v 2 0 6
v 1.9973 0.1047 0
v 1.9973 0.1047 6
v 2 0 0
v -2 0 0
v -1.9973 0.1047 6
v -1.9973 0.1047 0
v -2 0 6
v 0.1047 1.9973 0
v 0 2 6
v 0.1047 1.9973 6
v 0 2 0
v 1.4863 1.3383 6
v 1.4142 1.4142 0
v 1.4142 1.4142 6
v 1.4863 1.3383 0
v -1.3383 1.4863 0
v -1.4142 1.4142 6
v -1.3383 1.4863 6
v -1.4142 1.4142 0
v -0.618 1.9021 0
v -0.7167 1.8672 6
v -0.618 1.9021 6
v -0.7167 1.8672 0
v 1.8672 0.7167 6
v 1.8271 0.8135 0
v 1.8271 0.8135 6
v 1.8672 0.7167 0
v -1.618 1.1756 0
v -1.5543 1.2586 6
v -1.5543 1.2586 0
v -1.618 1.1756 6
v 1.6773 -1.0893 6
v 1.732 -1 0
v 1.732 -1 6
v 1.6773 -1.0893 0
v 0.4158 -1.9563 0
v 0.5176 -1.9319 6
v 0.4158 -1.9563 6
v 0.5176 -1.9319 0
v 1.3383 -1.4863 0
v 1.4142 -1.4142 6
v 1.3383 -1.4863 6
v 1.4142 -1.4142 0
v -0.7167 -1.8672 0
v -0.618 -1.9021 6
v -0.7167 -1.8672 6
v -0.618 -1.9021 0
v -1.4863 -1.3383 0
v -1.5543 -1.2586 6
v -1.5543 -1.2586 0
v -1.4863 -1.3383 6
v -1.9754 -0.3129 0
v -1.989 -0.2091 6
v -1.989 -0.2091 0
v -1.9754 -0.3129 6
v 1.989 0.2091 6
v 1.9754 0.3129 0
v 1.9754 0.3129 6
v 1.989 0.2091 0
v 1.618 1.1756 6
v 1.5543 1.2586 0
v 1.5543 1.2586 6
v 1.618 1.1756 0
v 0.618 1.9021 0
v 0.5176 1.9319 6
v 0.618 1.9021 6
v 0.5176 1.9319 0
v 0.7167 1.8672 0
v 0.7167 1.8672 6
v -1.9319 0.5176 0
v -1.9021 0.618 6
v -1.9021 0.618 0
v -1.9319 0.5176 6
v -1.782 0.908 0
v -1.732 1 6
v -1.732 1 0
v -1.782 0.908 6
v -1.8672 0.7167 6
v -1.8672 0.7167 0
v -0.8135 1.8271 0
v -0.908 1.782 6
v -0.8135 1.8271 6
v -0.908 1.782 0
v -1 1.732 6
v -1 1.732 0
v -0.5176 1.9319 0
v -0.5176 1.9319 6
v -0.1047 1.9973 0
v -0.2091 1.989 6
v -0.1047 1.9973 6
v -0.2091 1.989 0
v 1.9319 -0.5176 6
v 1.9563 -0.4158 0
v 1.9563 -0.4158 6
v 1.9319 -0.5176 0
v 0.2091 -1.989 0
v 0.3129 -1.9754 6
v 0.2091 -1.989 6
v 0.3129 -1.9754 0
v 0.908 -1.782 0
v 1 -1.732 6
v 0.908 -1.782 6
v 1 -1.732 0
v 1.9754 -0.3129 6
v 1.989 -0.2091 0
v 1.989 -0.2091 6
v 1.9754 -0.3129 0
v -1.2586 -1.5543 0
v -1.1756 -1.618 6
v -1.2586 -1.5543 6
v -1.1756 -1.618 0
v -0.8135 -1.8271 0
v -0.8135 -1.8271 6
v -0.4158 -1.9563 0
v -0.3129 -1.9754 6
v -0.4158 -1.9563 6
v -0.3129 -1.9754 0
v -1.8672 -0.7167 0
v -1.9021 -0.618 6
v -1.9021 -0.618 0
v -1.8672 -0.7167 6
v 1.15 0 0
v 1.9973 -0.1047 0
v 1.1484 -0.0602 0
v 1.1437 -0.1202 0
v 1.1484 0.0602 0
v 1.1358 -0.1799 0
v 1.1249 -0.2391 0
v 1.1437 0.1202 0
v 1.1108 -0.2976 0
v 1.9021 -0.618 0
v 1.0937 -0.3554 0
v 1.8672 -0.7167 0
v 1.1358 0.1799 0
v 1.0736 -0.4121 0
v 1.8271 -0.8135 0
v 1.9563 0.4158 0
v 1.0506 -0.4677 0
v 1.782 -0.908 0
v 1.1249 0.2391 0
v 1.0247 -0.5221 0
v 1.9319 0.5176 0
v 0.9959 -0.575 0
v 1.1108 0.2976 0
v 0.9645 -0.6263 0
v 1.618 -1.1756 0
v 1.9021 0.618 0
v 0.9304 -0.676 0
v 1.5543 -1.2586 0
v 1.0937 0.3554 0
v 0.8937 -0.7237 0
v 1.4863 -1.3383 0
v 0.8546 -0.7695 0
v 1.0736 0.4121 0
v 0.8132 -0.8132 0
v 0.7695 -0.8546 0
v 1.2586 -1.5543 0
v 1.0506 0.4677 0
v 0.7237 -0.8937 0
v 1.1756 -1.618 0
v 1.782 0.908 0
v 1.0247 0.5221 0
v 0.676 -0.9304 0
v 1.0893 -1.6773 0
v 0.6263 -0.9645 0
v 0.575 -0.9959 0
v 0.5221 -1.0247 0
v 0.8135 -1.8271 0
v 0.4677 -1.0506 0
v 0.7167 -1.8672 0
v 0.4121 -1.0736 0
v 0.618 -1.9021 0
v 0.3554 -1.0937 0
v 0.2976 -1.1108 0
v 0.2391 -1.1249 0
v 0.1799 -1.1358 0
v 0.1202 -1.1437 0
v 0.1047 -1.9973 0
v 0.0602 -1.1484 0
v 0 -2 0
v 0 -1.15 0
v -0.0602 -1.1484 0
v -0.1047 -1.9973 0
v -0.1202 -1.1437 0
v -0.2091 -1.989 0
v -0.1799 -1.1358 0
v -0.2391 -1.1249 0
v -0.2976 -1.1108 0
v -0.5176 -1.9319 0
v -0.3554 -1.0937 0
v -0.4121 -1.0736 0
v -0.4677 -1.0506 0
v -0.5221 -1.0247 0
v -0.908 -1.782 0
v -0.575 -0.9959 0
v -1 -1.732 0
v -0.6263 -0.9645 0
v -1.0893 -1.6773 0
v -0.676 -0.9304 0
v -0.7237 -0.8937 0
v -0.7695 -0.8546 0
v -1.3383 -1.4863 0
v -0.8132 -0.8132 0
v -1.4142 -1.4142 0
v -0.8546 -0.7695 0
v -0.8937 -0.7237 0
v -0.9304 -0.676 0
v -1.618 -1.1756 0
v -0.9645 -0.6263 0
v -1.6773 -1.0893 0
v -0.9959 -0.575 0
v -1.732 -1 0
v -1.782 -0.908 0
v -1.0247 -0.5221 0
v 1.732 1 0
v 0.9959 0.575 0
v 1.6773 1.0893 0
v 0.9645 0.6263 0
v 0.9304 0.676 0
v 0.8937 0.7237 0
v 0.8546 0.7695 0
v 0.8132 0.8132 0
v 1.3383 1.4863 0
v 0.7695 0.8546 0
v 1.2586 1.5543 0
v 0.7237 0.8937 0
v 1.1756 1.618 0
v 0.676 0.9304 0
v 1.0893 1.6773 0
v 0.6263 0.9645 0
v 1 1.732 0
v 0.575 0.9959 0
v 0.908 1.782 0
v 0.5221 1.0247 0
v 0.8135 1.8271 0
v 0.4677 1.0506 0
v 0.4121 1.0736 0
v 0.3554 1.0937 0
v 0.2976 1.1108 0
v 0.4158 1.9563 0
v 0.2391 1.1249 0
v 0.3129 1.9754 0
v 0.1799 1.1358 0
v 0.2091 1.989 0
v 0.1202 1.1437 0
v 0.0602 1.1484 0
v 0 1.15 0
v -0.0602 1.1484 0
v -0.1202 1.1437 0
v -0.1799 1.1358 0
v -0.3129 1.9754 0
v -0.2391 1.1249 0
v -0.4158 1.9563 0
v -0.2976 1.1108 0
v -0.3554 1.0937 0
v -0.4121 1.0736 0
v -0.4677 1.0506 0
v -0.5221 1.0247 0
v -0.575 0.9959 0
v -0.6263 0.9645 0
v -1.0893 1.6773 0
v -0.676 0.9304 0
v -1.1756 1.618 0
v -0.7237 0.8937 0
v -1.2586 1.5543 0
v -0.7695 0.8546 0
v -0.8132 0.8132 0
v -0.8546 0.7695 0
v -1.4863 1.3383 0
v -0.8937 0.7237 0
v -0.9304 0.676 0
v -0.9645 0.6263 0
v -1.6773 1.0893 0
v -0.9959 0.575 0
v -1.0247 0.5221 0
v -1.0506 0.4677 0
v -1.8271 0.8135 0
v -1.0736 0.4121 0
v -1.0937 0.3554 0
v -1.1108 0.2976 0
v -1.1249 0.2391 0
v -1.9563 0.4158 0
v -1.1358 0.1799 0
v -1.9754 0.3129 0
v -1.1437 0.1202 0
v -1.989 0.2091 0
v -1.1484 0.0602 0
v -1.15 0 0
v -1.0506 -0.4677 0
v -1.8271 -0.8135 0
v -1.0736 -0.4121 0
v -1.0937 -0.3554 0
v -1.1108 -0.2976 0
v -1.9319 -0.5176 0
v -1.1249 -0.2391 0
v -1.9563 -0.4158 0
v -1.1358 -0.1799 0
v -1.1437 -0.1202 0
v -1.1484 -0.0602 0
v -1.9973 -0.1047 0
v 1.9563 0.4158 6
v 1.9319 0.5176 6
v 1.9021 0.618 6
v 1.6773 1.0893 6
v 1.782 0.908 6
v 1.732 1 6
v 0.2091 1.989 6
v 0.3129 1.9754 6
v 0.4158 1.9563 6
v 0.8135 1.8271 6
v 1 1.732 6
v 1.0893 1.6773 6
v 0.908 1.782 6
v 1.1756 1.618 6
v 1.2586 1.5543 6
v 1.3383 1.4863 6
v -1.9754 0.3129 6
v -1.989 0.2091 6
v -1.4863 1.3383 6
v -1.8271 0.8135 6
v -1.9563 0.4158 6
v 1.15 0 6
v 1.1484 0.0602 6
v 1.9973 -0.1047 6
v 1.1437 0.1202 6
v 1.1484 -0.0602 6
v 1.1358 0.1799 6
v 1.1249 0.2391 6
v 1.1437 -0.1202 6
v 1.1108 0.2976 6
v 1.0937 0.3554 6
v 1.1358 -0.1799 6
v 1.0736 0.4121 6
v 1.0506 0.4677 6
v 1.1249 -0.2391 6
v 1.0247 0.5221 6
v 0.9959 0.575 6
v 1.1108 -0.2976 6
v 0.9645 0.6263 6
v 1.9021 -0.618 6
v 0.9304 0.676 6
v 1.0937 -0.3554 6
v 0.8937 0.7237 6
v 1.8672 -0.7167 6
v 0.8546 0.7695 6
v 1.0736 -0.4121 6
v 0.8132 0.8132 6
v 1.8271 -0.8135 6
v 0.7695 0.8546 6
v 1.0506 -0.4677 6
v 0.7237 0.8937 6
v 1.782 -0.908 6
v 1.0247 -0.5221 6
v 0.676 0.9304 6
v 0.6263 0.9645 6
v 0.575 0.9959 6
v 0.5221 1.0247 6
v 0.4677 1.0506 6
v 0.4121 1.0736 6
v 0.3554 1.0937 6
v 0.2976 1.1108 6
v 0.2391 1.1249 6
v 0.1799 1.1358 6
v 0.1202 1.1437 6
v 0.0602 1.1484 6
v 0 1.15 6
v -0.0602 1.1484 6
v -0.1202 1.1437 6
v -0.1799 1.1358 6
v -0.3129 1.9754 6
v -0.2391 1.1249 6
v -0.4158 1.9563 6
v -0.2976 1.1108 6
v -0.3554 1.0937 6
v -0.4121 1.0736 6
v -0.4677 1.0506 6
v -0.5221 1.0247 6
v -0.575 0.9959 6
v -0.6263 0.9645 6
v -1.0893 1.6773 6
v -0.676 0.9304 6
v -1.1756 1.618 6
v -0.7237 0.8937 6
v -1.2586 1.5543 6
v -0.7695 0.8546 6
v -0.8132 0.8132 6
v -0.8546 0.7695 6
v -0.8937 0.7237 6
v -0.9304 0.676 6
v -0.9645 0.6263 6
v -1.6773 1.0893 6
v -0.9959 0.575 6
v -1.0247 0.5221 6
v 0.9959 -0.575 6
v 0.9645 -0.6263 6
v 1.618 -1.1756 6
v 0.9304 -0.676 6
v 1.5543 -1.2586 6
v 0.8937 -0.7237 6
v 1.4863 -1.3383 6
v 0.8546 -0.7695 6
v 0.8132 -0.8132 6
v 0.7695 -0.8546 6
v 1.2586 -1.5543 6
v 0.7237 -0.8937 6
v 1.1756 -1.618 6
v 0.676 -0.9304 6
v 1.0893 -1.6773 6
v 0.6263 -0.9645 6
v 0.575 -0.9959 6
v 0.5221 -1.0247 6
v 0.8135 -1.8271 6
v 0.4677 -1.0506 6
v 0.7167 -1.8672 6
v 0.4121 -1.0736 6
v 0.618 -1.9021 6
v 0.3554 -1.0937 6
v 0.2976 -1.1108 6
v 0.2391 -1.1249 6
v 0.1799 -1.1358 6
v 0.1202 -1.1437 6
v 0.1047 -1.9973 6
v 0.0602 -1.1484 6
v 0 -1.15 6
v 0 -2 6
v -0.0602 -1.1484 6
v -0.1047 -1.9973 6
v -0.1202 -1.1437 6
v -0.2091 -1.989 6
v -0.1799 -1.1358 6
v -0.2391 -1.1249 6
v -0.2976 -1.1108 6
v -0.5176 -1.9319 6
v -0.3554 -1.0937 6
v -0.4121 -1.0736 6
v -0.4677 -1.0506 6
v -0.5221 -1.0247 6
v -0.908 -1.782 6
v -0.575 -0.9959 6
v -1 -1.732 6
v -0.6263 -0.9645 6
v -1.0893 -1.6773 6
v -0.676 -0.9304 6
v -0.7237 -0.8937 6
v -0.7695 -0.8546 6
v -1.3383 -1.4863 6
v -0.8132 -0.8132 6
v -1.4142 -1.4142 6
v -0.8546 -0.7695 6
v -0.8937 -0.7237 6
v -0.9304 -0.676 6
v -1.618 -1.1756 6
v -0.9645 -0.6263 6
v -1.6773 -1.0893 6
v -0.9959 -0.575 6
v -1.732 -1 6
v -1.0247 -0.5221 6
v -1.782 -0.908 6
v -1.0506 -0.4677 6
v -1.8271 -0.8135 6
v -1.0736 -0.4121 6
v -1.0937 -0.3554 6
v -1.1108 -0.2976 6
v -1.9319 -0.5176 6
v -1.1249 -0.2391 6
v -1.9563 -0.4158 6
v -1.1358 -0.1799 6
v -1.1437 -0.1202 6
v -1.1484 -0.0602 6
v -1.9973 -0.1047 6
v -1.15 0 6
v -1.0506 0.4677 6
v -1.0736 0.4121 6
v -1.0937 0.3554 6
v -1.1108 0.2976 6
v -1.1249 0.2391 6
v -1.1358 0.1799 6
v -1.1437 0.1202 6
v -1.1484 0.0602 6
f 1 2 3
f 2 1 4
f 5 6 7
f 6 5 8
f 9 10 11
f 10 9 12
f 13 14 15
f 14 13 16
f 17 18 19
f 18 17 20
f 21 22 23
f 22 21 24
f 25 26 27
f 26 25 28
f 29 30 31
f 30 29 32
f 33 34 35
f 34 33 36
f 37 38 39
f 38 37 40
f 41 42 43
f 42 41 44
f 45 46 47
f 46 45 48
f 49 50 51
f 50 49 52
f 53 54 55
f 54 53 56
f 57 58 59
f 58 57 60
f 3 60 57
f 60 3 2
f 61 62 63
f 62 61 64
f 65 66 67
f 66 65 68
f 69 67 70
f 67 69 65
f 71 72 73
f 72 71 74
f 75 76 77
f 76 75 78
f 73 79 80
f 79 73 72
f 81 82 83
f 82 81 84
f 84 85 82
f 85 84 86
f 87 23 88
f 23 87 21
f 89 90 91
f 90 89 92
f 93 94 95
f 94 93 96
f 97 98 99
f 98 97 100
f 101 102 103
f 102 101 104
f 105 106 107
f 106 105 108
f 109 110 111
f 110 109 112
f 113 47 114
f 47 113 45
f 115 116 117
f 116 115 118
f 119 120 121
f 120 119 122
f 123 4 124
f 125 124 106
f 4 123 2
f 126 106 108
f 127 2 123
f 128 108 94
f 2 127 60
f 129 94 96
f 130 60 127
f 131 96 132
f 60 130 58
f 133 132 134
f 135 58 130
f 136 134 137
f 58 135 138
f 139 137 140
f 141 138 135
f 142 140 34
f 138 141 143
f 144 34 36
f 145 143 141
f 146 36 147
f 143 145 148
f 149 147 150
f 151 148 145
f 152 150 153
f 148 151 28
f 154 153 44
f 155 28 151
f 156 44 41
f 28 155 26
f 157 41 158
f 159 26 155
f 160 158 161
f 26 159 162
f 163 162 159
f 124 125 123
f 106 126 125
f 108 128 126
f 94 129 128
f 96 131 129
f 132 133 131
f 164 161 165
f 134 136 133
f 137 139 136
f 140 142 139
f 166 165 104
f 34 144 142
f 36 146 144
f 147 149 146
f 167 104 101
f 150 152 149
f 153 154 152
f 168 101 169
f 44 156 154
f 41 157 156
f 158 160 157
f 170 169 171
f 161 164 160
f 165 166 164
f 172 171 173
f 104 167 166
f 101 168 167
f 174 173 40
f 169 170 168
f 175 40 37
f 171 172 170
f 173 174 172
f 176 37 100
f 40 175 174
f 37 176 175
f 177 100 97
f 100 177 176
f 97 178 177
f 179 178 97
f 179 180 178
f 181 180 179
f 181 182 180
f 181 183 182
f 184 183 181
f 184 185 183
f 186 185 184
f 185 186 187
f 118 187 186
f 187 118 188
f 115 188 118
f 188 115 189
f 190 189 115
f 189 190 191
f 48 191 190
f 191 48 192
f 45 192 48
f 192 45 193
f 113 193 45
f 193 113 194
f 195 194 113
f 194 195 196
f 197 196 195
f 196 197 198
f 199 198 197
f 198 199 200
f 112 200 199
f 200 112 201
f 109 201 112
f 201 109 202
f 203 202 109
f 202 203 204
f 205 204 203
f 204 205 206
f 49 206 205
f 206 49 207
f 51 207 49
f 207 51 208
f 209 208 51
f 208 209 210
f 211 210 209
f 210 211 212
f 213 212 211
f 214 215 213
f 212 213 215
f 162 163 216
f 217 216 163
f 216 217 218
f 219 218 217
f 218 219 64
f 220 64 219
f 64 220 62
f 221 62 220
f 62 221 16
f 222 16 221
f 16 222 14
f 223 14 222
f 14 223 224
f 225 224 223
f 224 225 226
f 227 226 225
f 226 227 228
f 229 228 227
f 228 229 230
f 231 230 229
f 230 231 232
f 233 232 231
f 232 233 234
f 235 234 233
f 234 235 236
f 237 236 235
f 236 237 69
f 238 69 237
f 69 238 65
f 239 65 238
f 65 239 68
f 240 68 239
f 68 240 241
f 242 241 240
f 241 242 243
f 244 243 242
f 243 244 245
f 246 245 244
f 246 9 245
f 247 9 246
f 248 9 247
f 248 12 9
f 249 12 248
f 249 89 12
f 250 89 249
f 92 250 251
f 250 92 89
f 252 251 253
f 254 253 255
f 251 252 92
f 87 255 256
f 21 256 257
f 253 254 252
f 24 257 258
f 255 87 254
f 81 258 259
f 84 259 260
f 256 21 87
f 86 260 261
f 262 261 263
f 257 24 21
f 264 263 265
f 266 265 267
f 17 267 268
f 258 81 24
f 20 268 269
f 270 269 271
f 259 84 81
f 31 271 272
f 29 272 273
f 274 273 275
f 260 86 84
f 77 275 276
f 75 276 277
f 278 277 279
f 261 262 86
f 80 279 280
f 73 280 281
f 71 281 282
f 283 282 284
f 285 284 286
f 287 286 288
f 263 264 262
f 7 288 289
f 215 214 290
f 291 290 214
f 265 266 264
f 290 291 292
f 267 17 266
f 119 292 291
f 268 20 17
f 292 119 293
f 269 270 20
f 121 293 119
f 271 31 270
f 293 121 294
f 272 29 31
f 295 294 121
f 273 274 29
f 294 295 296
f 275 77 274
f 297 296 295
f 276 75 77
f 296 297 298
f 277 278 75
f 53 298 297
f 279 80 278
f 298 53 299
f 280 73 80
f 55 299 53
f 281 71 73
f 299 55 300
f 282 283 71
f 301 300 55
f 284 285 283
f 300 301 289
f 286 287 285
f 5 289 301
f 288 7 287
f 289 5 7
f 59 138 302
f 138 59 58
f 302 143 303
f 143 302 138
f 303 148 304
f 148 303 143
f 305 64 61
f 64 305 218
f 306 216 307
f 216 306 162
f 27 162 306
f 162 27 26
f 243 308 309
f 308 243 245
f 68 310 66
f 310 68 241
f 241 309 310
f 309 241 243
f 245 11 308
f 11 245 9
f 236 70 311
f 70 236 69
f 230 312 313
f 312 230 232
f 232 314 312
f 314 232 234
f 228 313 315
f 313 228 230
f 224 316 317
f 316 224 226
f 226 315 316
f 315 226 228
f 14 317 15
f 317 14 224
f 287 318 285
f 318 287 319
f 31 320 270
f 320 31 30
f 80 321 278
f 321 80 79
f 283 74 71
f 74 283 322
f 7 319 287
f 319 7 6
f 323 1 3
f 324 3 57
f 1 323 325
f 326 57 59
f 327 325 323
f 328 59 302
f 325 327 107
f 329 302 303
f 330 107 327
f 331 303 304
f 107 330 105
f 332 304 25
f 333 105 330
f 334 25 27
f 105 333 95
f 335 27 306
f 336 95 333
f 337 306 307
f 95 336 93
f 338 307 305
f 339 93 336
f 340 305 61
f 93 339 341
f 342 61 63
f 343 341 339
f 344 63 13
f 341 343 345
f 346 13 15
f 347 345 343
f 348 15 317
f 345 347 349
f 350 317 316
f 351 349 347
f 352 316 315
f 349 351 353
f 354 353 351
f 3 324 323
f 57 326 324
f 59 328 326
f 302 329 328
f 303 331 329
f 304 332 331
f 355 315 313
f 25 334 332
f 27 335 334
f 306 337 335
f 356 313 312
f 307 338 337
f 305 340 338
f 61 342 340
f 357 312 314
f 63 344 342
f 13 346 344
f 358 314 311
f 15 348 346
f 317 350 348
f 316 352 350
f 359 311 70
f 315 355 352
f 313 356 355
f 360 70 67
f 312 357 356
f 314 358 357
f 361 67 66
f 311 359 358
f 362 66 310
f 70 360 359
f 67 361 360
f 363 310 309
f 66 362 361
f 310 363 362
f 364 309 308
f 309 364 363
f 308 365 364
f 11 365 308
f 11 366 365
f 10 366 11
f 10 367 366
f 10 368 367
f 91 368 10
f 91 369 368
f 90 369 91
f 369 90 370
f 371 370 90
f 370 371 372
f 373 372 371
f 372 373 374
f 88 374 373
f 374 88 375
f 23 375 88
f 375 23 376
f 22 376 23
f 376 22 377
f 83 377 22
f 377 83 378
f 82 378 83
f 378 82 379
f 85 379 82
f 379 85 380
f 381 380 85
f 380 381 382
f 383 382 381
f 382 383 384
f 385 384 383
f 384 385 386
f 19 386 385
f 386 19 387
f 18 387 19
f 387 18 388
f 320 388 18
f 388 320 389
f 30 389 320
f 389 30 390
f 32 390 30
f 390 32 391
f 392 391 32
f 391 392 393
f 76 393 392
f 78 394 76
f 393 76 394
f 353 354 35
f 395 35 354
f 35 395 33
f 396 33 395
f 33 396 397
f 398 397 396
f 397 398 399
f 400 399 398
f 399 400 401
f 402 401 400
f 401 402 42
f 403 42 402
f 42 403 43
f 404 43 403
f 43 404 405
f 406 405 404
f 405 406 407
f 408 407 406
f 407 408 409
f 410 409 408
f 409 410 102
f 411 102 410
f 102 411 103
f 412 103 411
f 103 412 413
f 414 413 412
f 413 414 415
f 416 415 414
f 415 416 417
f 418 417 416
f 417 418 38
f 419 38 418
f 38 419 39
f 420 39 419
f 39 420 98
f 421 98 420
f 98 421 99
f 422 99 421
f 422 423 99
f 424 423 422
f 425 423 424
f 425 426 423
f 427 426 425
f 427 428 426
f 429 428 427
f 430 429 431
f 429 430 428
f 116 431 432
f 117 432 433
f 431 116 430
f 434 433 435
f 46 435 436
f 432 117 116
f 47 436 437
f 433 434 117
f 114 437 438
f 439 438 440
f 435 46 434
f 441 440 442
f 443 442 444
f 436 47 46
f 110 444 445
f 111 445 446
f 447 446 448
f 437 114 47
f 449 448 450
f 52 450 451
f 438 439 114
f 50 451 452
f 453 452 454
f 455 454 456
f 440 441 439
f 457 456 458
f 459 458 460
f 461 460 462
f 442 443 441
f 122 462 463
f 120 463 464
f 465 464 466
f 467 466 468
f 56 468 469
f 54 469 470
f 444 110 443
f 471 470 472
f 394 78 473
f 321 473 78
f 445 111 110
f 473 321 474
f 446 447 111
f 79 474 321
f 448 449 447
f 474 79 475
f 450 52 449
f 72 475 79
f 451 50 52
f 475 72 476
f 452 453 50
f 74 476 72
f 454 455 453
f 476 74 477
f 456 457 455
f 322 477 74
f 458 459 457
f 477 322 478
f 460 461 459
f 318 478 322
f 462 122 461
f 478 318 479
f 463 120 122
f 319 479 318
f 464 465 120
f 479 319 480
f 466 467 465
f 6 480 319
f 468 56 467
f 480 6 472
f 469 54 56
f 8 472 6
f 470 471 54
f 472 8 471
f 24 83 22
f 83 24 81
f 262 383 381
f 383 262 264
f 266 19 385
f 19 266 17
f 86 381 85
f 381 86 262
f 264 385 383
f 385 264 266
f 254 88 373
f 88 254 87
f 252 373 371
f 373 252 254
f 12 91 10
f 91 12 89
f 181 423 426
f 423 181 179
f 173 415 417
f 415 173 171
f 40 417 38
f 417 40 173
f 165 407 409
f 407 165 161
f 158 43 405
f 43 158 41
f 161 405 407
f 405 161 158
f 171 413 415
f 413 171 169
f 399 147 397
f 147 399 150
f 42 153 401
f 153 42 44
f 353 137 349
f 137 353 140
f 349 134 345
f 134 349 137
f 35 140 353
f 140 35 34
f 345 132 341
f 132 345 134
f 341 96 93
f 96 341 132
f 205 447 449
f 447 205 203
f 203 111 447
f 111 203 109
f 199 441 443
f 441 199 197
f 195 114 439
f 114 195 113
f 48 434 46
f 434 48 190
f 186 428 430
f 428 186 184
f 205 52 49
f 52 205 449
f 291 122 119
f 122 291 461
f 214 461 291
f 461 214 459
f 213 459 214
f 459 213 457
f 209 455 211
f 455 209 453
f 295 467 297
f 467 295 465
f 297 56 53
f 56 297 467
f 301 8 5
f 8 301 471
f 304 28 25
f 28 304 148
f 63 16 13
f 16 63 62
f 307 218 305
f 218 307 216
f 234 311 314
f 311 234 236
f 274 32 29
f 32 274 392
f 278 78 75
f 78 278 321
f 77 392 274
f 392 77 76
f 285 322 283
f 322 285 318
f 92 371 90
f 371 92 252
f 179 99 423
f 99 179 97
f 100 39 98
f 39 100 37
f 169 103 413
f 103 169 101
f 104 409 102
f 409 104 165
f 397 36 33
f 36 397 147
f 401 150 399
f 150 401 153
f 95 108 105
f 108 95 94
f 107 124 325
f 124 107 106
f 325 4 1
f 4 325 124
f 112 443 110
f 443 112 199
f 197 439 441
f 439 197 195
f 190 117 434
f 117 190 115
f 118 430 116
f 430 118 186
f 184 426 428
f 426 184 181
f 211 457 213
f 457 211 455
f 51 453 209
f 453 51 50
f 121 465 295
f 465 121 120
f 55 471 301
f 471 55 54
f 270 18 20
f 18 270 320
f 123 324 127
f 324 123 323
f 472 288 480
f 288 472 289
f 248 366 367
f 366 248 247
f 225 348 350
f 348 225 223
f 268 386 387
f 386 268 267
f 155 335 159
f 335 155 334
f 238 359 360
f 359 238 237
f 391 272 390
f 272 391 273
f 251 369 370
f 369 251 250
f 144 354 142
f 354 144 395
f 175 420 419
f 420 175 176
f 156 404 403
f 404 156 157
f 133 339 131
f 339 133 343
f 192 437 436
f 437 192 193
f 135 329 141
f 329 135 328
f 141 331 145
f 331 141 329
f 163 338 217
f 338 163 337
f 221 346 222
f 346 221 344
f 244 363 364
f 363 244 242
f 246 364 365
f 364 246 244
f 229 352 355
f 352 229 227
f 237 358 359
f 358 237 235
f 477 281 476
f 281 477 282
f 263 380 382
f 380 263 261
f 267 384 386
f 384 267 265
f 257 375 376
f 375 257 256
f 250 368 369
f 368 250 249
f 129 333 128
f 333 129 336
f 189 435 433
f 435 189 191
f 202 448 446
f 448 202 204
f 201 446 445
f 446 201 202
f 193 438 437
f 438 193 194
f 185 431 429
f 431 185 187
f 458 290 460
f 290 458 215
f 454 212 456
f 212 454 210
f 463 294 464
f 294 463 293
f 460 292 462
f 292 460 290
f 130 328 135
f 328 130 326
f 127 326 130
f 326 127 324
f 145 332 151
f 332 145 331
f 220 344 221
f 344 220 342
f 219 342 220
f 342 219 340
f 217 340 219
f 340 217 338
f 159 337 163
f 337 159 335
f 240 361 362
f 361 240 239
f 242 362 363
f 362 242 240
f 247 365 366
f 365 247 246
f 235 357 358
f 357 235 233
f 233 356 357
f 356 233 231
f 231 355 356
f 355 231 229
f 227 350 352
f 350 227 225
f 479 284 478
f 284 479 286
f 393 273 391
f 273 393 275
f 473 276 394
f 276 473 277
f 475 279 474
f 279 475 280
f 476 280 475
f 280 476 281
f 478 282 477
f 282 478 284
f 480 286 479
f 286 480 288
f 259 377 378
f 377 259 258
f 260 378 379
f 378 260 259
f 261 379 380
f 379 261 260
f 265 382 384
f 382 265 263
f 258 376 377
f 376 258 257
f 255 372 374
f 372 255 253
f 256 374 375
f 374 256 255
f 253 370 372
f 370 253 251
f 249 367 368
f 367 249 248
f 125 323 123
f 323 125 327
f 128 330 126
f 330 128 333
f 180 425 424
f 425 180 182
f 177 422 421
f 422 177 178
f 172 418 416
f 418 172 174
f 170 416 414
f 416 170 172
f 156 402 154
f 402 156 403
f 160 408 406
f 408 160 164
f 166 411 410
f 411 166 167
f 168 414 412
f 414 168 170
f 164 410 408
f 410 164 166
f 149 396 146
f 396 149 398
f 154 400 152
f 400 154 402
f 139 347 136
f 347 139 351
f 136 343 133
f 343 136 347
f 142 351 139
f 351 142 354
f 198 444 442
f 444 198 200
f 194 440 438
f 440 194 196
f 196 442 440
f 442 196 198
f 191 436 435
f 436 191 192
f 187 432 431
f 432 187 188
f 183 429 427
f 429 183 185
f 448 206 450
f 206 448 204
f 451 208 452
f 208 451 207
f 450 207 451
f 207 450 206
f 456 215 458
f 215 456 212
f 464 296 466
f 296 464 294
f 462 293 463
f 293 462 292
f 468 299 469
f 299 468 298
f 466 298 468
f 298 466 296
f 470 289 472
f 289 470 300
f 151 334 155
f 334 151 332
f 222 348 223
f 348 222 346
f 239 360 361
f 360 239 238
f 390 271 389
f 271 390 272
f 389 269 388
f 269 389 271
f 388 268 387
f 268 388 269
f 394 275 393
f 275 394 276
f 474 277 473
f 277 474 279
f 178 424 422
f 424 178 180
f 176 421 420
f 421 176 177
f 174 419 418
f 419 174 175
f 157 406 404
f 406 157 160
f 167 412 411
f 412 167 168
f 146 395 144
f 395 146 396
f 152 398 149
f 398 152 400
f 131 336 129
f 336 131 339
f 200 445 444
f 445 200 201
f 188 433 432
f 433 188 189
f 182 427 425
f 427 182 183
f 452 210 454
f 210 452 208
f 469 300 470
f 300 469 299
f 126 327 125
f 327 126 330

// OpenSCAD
$fa=3;
$fs=0.05;
p = 0.01;
p2 = 2*p;

h = 6;
d1 = 2.3;
d2 = 4.0;

difference() {
    cylinder(h, d=d2);
    translate([0, 0, -p])
    cylinder(h + p2, d=d1);
}
